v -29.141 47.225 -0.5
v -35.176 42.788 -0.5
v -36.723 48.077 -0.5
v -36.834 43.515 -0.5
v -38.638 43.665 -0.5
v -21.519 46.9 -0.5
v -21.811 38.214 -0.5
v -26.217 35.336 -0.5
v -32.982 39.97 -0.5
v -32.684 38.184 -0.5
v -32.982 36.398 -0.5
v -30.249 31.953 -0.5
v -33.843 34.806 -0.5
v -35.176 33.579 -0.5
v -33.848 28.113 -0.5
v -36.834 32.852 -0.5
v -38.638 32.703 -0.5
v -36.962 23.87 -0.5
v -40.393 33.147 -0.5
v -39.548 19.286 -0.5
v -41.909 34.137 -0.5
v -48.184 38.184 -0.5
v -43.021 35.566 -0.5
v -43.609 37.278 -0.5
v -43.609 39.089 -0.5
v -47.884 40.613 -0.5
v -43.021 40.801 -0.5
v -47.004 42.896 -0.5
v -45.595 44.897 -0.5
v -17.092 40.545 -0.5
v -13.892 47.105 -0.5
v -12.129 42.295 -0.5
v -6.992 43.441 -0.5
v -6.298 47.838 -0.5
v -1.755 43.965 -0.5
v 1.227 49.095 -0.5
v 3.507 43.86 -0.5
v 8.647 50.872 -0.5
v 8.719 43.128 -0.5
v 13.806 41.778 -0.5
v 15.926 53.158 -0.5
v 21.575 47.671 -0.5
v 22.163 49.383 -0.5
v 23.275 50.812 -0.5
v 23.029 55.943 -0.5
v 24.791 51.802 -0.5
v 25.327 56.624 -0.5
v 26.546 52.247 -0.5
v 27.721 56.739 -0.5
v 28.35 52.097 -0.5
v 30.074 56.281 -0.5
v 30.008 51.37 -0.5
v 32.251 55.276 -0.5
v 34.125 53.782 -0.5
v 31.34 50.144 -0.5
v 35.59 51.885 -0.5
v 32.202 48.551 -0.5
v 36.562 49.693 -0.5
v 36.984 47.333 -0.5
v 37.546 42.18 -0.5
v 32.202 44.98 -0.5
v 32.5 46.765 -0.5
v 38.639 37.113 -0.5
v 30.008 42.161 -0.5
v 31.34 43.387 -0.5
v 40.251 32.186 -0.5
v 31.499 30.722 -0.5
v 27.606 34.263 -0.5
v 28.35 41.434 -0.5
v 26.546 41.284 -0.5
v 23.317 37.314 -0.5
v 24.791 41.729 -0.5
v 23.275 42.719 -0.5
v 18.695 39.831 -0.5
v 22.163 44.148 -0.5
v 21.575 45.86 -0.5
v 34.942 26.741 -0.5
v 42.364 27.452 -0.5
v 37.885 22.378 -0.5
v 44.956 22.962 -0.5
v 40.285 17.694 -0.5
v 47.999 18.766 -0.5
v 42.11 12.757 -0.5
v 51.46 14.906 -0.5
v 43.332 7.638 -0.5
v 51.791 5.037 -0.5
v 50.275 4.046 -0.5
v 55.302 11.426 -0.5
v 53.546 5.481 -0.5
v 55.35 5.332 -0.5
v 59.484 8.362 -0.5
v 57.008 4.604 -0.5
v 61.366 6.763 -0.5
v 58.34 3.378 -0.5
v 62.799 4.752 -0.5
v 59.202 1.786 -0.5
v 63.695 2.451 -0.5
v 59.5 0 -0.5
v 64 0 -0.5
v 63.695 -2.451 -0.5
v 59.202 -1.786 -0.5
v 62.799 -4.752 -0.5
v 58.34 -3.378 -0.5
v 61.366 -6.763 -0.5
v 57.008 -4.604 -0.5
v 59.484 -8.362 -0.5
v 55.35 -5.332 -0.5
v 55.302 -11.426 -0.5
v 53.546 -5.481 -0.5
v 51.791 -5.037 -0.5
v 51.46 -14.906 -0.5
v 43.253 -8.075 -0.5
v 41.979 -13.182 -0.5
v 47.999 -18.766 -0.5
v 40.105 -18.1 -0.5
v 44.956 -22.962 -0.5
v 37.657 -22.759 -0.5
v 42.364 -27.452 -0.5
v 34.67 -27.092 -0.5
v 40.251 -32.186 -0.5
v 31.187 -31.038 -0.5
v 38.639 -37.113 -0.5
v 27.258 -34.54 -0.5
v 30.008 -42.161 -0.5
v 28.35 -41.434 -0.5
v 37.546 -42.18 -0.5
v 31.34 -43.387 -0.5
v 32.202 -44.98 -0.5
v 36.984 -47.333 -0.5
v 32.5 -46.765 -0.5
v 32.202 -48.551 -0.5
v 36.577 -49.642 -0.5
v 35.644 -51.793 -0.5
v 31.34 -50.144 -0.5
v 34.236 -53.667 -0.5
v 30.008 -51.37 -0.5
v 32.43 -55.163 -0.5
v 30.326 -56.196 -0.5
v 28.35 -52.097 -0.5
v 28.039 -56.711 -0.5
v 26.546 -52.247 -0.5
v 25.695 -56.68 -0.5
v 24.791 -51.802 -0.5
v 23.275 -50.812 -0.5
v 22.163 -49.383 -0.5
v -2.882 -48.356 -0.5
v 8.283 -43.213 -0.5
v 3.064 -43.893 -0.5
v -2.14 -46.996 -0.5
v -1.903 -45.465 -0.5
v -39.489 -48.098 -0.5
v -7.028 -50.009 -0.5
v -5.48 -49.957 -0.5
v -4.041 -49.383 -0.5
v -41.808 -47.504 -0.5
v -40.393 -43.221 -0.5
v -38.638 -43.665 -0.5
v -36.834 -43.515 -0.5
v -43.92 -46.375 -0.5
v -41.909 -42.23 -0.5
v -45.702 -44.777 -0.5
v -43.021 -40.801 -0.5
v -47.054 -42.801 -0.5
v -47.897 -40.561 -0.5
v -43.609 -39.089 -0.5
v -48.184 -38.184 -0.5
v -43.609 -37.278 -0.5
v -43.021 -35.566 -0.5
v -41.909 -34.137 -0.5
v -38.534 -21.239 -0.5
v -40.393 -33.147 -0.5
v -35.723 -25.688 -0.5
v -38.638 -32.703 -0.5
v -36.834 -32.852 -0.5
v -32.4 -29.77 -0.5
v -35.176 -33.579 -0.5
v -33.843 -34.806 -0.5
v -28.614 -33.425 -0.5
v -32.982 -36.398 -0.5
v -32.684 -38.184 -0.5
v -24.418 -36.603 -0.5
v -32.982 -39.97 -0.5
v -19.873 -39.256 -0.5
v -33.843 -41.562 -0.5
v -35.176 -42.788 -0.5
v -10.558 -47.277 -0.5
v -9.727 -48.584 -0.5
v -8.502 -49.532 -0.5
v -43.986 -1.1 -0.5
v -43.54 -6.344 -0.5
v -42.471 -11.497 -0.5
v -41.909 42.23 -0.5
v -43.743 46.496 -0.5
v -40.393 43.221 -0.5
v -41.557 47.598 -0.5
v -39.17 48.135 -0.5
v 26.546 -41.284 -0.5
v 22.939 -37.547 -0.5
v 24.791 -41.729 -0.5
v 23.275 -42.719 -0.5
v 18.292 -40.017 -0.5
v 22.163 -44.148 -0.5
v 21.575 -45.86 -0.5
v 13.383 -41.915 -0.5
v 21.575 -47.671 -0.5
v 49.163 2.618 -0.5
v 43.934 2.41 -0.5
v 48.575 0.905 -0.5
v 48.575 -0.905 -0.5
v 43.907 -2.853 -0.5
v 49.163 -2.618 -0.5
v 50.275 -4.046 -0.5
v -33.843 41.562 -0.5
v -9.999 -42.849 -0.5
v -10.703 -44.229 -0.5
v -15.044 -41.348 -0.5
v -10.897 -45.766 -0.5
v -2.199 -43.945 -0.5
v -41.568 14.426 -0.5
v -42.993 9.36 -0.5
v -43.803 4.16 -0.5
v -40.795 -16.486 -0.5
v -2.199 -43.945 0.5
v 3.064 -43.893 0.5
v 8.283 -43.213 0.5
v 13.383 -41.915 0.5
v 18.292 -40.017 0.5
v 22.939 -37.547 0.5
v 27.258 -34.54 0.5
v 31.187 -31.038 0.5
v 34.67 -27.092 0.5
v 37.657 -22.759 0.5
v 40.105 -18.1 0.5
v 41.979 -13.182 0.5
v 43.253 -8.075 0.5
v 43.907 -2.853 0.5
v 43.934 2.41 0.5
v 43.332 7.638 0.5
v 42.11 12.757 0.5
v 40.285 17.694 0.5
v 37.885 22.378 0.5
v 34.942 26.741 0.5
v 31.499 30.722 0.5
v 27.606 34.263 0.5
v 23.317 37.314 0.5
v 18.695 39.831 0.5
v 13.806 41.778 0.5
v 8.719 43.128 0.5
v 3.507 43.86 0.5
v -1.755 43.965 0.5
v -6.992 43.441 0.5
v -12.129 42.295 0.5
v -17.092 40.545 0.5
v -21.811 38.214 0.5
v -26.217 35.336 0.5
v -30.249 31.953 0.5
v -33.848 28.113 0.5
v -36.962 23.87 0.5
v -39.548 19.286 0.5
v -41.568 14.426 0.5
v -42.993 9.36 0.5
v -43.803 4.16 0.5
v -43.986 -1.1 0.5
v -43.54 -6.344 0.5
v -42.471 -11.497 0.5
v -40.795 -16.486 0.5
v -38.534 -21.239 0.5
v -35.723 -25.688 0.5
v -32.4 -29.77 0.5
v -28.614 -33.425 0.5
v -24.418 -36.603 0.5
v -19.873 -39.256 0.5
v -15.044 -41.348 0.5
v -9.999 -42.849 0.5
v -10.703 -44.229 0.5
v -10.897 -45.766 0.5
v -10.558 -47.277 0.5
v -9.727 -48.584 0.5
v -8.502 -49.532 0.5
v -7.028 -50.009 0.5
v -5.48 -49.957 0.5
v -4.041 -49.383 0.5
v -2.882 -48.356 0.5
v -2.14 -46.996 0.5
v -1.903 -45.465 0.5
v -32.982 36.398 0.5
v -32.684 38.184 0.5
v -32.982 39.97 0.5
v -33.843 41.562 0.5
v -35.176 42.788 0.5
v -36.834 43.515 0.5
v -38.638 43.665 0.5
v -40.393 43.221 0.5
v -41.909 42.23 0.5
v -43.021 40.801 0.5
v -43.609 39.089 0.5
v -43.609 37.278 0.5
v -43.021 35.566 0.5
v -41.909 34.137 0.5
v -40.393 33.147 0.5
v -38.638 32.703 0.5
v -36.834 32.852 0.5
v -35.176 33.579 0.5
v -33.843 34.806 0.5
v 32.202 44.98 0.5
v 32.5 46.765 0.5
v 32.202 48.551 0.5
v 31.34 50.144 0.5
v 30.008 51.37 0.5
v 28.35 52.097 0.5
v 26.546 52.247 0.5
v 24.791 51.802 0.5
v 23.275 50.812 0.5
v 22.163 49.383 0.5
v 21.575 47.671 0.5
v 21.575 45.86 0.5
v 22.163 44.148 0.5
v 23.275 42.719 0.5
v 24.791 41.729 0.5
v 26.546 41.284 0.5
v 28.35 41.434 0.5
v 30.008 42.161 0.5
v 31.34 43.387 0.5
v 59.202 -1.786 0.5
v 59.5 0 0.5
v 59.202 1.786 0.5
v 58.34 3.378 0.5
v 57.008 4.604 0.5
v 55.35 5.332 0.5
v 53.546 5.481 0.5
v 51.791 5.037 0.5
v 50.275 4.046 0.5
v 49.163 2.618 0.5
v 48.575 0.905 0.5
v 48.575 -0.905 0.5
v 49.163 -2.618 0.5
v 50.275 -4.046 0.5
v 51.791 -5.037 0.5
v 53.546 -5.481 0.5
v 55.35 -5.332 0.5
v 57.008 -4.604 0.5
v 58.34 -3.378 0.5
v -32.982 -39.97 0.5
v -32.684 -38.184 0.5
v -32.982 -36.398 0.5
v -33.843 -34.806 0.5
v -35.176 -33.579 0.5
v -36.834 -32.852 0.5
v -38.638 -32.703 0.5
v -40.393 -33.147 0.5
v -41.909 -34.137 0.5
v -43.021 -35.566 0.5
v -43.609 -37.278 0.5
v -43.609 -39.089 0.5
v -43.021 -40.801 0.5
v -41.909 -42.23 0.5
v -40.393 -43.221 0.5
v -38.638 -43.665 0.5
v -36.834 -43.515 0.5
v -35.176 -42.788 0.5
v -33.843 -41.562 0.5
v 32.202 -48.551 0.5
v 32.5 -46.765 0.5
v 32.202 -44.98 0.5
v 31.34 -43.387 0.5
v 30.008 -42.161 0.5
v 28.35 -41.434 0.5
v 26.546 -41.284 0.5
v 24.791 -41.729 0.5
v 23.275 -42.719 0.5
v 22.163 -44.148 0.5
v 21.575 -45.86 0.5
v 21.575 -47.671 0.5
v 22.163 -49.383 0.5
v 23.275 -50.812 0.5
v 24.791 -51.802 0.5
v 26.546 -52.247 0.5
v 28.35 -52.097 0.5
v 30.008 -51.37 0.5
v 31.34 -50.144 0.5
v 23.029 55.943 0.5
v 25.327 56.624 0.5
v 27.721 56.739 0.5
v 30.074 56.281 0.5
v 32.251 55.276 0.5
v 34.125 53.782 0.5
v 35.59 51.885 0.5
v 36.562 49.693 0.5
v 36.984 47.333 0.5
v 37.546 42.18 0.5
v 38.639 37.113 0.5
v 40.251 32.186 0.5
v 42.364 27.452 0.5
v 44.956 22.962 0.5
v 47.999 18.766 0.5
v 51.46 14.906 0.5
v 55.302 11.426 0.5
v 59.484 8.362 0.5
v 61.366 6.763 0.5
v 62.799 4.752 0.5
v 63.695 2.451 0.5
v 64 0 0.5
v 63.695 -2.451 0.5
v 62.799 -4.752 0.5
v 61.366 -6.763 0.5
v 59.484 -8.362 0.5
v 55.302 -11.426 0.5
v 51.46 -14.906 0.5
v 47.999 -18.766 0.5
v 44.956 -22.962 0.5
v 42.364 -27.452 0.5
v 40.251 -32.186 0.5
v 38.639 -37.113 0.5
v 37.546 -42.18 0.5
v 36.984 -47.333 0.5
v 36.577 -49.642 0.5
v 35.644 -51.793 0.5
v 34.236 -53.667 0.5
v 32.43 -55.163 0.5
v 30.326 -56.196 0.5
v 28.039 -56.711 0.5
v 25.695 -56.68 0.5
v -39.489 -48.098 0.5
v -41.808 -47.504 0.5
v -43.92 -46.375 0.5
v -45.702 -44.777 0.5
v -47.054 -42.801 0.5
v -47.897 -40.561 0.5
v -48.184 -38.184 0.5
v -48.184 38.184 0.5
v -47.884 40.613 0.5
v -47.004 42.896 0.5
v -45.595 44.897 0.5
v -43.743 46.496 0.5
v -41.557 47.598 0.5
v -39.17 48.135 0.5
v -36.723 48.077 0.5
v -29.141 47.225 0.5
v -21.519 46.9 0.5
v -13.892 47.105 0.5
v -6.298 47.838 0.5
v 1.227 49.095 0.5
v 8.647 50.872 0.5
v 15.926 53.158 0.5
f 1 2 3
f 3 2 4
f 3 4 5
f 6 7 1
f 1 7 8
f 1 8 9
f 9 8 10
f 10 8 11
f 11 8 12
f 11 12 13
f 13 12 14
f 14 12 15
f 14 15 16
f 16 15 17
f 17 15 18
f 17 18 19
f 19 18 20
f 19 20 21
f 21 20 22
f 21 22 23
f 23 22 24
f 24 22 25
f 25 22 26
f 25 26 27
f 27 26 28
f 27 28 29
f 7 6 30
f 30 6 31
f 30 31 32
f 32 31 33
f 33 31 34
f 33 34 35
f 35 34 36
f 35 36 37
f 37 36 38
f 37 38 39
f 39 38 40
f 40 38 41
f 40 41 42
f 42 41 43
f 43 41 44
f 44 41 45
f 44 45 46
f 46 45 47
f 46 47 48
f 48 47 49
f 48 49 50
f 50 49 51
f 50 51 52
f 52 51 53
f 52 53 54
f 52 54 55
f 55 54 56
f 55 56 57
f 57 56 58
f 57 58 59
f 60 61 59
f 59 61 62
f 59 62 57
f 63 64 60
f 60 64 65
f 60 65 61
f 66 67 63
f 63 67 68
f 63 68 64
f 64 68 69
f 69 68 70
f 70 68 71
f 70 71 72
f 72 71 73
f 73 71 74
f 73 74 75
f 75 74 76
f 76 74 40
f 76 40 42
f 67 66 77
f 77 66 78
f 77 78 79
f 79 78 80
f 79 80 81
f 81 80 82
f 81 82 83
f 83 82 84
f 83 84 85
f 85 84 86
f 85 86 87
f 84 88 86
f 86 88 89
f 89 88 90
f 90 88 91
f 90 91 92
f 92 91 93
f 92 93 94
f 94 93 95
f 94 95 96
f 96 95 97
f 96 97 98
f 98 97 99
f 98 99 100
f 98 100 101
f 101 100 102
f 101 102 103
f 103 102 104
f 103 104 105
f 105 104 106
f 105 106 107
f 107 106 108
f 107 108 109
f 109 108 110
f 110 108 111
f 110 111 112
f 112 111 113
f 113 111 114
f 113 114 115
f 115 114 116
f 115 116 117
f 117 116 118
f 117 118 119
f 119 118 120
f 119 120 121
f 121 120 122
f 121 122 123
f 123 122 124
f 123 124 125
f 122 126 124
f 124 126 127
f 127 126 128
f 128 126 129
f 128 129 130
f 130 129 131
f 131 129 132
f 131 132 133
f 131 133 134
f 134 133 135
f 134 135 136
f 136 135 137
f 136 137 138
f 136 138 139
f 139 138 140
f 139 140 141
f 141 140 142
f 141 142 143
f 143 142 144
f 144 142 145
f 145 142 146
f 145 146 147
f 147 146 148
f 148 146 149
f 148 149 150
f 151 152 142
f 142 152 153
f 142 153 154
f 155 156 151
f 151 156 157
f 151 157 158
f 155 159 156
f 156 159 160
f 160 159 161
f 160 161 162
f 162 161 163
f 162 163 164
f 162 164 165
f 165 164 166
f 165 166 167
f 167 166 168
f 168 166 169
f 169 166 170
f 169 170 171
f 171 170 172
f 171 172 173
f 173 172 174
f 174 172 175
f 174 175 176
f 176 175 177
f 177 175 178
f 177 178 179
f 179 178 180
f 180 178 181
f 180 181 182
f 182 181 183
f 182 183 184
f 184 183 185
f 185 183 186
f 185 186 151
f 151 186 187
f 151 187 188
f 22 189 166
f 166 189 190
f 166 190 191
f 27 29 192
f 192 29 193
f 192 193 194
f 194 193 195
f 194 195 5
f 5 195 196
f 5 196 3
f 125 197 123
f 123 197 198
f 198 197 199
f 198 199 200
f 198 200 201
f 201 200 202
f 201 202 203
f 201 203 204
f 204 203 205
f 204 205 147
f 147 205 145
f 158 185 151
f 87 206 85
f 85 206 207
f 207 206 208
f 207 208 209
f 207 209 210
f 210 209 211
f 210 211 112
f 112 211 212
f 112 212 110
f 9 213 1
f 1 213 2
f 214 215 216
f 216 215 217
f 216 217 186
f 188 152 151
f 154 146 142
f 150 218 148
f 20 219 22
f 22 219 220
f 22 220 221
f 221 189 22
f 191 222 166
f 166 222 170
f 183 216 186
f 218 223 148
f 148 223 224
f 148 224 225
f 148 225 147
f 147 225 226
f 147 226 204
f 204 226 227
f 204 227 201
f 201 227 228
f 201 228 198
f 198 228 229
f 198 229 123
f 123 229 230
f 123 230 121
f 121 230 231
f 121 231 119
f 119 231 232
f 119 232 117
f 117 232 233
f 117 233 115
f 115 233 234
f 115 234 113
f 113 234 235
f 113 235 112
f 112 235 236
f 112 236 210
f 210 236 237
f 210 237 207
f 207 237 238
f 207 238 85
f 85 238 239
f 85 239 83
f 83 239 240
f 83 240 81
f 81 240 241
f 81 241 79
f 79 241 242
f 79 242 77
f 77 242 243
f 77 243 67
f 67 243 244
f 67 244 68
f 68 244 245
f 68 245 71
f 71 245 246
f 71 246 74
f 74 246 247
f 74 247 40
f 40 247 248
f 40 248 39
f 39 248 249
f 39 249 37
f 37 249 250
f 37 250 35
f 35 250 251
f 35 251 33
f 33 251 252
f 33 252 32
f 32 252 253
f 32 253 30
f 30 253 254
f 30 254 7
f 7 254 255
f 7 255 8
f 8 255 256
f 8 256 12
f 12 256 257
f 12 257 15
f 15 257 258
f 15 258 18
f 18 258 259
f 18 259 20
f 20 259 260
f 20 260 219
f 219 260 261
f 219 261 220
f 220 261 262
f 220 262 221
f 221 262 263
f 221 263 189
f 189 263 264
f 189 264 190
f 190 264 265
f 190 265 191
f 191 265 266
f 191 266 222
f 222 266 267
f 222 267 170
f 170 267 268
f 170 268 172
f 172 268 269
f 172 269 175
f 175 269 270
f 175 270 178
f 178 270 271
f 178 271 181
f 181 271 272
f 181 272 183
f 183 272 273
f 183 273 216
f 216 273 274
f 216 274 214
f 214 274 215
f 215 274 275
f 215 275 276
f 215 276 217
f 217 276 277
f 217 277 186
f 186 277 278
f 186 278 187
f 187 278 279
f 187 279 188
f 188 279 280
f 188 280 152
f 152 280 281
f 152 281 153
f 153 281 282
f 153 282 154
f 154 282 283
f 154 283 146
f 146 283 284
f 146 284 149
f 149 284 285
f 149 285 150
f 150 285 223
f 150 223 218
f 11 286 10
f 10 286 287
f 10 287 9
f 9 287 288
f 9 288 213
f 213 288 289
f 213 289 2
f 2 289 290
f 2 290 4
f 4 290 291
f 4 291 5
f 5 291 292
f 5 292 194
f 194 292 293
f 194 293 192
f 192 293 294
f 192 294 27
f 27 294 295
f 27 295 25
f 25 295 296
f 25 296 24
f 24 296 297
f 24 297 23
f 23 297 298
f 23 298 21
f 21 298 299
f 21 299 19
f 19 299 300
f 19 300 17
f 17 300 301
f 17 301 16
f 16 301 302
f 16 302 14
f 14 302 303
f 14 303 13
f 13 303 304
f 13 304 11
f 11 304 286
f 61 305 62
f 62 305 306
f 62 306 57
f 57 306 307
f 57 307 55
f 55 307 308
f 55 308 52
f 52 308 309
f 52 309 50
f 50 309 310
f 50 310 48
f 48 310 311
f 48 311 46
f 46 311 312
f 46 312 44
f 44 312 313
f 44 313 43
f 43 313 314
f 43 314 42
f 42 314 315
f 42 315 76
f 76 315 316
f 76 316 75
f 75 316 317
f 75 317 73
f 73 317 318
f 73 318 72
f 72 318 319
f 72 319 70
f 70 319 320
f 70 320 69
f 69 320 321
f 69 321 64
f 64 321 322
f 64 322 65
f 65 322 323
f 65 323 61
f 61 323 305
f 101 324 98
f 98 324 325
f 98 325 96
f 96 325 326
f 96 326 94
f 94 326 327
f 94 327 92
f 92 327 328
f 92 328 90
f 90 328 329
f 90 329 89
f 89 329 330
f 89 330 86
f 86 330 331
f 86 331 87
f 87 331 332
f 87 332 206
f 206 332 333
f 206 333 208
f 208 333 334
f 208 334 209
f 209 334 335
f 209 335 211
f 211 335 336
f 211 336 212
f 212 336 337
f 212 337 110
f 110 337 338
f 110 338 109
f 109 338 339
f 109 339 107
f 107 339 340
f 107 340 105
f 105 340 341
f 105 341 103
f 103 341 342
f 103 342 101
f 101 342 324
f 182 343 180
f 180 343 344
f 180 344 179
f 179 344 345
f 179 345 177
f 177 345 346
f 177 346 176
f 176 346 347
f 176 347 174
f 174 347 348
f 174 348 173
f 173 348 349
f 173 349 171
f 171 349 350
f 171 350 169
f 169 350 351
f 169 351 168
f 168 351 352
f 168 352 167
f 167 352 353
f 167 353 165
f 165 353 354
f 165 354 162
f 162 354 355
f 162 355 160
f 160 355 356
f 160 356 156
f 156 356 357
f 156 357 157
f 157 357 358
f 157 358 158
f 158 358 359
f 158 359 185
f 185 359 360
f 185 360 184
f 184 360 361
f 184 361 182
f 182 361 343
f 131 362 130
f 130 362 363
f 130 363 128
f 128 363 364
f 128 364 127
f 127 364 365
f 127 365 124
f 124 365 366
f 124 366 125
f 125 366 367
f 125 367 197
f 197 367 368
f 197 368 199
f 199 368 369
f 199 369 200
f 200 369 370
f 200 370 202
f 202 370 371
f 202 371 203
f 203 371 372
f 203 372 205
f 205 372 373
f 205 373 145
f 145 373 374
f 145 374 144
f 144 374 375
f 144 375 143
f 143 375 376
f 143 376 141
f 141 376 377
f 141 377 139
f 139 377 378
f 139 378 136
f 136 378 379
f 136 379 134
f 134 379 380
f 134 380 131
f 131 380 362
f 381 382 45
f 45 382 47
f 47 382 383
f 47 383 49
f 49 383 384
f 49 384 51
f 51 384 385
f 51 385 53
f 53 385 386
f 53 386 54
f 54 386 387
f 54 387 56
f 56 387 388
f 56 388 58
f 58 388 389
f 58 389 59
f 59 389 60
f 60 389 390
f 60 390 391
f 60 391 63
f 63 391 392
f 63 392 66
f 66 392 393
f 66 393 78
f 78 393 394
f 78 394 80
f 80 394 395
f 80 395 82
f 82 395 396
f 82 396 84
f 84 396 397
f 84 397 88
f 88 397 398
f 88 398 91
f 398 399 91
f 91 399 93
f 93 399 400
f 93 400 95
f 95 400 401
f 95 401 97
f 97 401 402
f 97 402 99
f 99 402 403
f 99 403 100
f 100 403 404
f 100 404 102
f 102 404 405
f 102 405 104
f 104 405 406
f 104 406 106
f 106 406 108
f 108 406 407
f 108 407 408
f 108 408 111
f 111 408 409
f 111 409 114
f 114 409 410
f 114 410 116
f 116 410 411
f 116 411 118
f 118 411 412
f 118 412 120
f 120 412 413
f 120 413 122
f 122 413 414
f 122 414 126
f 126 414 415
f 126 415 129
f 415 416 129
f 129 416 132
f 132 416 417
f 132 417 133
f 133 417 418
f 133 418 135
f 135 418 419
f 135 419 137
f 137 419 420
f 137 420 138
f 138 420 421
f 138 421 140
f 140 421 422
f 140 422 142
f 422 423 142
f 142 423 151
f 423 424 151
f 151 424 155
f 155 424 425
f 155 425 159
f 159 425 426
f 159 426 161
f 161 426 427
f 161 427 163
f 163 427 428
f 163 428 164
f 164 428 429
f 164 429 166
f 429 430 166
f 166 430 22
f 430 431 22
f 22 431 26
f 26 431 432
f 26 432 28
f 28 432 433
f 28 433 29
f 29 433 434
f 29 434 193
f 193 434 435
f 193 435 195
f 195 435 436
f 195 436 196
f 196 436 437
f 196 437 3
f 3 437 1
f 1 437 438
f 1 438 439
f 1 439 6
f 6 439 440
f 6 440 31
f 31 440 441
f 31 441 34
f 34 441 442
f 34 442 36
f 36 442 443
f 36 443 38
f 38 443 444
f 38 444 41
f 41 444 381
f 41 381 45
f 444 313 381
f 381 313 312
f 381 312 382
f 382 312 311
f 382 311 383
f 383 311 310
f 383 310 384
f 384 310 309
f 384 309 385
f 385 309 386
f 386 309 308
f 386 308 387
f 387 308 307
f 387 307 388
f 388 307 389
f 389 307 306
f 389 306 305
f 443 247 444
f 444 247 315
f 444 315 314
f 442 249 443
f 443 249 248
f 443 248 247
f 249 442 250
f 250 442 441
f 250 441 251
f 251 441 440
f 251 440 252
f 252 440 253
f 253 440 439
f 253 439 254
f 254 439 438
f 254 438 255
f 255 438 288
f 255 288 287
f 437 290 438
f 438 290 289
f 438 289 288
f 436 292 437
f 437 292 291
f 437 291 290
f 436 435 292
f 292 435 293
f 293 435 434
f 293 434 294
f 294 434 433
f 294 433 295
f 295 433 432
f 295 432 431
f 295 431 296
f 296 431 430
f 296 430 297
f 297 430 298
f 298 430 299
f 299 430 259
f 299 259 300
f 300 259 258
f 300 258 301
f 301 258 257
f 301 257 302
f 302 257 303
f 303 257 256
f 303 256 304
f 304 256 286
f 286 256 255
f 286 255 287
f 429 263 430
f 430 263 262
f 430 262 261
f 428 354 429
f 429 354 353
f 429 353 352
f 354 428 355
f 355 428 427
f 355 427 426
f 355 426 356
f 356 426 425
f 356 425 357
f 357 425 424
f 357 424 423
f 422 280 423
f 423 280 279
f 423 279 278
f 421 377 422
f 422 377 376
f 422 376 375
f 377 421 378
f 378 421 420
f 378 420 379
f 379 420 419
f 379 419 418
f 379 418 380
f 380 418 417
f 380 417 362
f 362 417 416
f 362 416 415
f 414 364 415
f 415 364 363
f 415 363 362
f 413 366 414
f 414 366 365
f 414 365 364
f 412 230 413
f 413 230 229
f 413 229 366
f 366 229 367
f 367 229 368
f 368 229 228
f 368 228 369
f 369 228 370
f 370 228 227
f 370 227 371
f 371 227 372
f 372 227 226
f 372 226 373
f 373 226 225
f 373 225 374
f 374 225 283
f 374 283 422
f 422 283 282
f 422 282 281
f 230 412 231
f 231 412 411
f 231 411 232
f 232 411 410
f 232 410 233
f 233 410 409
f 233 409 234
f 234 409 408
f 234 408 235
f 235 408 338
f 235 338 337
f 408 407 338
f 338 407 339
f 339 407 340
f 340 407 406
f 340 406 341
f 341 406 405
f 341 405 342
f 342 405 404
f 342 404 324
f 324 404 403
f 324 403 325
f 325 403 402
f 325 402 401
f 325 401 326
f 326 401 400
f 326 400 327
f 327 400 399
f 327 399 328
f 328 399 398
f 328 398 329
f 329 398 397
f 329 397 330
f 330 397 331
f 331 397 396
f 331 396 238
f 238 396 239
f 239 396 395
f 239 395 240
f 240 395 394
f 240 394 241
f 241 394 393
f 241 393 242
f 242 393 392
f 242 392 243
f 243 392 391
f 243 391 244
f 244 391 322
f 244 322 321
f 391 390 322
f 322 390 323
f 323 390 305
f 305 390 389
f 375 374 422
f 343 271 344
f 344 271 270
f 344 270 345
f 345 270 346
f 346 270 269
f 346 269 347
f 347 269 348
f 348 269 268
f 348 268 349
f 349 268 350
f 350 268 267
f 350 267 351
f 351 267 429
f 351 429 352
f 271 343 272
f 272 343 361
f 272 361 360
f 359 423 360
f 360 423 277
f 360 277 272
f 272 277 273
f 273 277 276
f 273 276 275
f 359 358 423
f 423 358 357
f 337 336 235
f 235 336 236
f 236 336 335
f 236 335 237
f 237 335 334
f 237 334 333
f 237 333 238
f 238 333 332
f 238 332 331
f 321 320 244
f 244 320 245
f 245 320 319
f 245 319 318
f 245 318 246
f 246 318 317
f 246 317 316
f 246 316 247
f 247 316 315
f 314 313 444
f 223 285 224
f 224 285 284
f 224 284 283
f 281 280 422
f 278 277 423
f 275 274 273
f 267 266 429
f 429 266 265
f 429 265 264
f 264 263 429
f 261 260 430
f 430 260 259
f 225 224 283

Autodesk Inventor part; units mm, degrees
ref_plane "YZ Plane" through (0, 0, 0) normal (1, 0, 0) x (0, 1, 0)
ref_plane "XZ Plane" through (0, 0, 0) normal (0, 1, 0) x (-1, 0, 0)
ref_plane "XY Plane" through (0, 0, 0) normal (0, 0, 1) x (1, 0, 0)
sketch "Эскиз1" plane through (0, 0, 0) normal (0, 0, 1) x (1, 0, 0)
  arc A0 (-2.1988, -43.945) -> (-9.9993, -42.8487) centre (0, 0) ccw
  arc A1 (-36.7231, 48.0765) -> (-48.1838, 38.1838) centre (-38.1838, 38.1838) ccw
  arc A2 (-36.7231, 48.0765) -> (23.0287, 55.943) centre (-20.6558, 156.8967) ccw
  arc A3 (36.9839, 47.3334) -> (23.0287, 55.943) centre (27, 46.7654) ccw
  arc A4 (36.9839, 47.3334) -> (59.4839, 8.3623) centre (86.9031, 50.1735) ccw
  arc A5 (59.4839, -8.3623) -> (59.4839, 8.3623) centre (54, 0) ccw
  arc A6 (59.4839, -8.3623) -> (36.9839, -47.3334) centre (86.9031, -50.1735) ccw
  arc A7 (25.6947, -56.6798) -> (36.9839, -47.3334) centre (27, -46.7654) ccw
  arc A8 (-48.1838, -38.1838) -> (-39.489, -48.0982) centre (-38.1838, -38.1838) ccw
  line L0 (-48.1838, 38.1838) -> (-48.1838, -38.1838)
  circle A9 centre (0, 0) radius 54 construction
  circle A10 centre (-38.1838, 38.1838) radius 5.5
  line L1 (0, 0) -> (-38.1838, 38.1838) construction
  line L2 (0, 0) -> (-54, 0) construction
  line L3 (0, 0) -> (27, 46.7654) construction
  line L4 (0, 0) -> (0, 54) construction
  circle A11 centre (27, 46.7654) radius 5.5
  circle A12 centre (54, 0) radius 5.5
  line L5 (0, 0) -> (-38.1838, -38.1838) construction
  line L6 (-39.489, -48.0982) -> (25.6947, -56.6798)
  line L7 (0, 0) -> (0, -54) construction
  line L8 (0, 0) -> (27, -46.7654) construction
  circle A13 centre (-38.1838, -38.1838) radius 5.5
  circle A14 centre (27, -46.7654) radius 5.5
  arc A15 (-46, 0) -> (0, -46) centre (0, 0) ccw construction
  line L9 (0, 0) -> (-6.402, -45.5523) construction
  arc A16 (-9.9993, -42.8487) -> (-2.1988, -43.945) centre (-6.402, -45.5523) ccw
  dimension "d4" = 108
  dimension "d0" = 88
  dimension "d1" = 10
  dimension "d2" = 110
  dimension "d3" = 50
  dimension "d5" = 11
  dimension "d6" = 45
  dimension "d7" = 30
  dimension "d8" = 90
  dimension "d9" = 30
  dimension "d10" = 46
  dimension "d11" = 8
  dimension "d12" = 4.5
extrude "Выдавливание1" add sketch "Эскиз1" along normal mid plane 1
properties part number "74. Прокладка задней крышки"
